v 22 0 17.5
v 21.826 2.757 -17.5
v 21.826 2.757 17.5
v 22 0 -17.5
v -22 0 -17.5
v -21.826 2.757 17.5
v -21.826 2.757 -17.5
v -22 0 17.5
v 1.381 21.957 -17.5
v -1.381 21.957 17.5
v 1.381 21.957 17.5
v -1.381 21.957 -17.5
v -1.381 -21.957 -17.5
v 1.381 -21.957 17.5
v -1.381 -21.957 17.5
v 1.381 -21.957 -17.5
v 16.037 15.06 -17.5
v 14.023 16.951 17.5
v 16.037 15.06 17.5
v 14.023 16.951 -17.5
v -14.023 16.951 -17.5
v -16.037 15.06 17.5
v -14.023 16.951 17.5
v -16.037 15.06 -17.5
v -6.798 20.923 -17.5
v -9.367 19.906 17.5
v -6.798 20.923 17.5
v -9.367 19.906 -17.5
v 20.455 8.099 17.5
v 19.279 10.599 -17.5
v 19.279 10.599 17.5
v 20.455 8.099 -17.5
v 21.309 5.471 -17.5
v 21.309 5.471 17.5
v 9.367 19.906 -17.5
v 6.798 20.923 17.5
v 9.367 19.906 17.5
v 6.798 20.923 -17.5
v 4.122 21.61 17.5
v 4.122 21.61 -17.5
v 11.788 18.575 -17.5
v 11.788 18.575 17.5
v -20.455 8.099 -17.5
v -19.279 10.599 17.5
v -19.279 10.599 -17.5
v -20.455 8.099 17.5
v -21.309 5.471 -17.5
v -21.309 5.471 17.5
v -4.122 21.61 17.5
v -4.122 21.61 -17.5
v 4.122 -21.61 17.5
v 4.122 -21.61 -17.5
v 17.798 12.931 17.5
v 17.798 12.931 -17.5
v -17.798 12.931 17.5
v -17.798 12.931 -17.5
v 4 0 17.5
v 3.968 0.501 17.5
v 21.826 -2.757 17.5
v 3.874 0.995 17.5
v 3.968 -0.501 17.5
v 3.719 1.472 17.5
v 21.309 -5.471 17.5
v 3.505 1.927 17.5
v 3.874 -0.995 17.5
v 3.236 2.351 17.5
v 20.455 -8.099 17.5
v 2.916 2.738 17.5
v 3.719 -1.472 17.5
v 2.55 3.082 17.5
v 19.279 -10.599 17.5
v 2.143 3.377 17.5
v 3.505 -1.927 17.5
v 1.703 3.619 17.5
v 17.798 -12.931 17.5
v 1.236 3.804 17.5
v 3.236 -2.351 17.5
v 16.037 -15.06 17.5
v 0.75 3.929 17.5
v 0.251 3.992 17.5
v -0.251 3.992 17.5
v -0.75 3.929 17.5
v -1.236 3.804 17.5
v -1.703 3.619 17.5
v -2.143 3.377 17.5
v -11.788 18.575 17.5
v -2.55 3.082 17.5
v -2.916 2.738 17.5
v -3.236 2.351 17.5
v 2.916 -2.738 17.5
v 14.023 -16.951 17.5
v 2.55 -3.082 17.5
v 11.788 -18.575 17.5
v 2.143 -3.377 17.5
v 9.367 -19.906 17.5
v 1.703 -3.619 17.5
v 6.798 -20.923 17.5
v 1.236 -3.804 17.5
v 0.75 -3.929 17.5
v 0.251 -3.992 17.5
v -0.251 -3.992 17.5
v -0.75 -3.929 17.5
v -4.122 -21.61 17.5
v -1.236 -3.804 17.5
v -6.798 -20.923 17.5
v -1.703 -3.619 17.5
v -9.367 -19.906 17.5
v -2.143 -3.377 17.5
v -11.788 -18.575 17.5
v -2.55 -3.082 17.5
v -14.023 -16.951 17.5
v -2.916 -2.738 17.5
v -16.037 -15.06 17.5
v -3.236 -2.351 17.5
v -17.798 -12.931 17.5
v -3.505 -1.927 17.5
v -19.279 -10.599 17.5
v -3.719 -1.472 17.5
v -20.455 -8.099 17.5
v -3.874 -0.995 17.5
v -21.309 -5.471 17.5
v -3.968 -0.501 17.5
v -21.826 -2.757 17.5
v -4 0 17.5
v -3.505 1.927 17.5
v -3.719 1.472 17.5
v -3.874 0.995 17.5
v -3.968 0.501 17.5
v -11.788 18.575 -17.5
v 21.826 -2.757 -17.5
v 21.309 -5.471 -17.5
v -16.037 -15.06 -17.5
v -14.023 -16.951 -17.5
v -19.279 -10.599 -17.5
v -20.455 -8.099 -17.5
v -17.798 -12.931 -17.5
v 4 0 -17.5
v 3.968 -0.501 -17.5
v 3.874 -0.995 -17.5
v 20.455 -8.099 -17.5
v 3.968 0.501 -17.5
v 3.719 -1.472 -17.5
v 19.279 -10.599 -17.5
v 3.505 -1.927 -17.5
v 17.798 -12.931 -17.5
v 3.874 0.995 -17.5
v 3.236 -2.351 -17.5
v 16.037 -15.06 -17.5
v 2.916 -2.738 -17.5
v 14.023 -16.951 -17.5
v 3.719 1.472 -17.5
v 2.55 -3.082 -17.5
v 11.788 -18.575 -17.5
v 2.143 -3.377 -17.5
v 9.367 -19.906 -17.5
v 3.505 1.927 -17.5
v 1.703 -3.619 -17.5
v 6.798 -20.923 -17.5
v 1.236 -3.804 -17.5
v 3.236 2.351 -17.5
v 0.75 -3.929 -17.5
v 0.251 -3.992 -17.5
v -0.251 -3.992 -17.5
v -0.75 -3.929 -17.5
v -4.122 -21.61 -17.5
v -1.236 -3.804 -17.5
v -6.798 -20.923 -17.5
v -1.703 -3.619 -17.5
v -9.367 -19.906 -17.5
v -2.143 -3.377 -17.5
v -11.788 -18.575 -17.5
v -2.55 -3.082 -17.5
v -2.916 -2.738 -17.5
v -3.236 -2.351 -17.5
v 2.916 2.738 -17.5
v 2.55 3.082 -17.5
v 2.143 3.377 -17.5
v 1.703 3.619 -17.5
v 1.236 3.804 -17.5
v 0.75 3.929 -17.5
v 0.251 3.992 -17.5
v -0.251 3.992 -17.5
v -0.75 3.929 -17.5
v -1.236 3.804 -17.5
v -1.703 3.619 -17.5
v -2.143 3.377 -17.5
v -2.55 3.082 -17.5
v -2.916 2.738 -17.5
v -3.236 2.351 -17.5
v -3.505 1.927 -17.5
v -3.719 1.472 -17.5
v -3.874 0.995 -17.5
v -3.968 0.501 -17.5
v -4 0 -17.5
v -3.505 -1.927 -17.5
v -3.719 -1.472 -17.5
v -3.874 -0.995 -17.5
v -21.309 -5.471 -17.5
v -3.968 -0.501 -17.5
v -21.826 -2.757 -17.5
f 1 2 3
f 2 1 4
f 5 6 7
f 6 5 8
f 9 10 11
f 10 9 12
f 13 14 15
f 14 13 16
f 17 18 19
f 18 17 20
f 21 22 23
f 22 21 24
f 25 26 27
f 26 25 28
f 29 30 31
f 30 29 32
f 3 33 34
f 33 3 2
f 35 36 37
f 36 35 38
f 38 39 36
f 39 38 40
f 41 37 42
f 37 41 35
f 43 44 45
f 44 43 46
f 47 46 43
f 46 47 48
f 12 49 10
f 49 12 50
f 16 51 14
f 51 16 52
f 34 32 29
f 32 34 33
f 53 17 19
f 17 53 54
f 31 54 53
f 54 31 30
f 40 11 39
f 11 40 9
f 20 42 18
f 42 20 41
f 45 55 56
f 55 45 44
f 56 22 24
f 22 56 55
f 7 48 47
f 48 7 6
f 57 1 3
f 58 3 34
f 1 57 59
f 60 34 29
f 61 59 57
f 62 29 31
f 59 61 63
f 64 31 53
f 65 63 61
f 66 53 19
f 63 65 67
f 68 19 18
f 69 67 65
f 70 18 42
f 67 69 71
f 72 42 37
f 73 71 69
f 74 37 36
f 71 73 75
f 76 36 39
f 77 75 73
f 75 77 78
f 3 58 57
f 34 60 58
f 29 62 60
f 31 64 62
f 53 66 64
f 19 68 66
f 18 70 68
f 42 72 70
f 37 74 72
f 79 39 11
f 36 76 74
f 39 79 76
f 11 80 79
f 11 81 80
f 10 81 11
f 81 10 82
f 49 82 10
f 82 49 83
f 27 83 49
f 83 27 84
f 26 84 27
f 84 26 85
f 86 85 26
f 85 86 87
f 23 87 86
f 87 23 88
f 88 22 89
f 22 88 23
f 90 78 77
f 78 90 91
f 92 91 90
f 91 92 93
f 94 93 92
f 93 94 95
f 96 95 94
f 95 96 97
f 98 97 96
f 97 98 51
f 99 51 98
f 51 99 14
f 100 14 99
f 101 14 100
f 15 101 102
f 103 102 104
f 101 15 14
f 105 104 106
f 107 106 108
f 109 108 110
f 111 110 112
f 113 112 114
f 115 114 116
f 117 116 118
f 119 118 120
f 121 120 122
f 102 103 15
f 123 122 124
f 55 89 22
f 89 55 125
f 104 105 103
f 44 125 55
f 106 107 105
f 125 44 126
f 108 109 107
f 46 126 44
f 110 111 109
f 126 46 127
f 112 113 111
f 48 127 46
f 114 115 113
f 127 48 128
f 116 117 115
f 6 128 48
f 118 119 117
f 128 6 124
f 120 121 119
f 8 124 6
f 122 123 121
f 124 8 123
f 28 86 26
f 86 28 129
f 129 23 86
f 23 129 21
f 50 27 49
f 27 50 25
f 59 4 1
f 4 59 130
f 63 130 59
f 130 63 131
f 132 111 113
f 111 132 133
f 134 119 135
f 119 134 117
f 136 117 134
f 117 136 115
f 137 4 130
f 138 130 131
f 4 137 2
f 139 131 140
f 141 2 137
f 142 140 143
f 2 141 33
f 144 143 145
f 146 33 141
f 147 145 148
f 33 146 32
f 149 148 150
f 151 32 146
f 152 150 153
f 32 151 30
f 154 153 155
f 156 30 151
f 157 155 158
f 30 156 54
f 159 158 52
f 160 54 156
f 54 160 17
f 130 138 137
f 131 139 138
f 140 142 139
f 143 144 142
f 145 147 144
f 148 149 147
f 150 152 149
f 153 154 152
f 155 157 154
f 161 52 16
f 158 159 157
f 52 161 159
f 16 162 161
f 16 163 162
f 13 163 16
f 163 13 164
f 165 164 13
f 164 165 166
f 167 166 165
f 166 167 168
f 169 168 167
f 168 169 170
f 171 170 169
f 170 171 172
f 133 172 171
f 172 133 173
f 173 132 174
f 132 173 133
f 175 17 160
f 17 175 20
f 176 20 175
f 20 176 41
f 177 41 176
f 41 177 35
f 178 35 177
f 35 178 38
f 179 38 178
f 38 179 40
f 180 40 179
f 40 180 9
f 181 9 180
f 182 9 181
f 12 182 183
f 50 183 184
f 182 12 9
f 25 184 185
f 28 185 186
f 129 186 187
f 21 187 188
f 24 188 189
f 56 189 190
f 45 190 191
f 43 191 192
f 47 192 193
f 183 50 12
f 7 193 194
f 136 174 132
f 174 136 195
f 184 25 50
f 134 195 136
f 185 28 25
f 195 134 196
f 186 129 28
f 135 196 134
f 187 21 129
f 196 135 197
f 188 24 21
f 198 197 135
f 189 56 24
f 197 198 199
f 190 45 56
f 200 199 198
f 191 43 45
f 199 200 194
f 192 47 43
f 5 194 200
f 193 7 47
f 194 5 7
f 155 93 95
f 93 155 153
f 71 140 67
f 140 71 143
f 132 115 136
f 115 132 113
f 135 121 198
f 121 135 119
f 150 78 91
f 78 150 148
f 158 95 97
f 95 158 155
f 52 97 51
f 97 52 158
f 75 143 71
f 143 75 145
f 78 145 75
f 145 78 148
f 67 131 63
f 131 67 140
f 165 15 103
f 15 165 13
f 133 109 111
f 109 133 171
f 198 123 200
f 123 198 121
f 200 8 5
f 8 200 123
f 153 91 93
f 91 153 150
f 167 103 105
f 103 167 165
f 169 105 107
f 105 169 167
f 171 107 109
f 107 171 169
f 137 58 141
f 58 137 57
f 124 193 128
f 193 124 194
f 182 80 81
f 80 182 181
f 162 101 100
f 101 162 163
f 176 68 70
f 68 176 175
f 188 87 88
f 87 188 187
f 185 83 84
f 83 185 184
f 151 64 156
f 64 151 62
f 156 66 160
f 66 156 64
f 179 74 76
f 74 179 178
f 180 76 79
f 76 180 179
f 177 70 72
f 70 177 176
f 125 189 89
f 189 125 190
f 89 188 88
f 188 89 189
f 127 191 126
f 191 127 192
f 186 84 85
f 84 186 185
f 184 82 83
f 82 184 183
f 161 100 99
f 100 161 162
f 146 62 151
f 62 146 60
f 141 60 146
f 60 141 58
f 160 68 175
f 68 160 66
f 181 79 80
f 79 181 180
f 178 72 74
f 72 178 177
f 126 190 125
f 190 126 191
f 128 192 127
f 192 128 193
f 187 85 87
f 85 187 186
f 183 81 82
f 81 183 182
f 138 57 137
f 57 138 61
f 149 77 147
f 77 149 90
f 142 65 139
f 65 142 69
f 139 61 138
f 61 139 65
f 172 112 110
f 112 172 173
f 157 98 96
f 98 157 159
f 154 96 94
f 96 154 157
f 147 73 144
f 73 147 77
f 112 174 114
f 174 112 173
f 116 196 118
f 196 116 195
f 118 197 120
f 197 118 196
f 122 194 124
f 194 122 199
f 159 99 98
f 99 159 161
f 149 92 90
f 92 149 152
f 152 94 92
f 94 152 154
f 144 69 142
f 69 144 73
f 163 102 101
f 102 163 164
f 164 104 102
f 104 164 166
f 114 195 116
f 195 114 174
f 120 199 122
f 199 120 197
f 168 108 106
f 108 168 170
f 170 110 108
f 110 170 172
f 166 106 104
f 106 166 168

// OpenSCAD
$fn = 50;


difference() {
	union() {
		translate(v = [0, 0, -17.5000000000]) {
			cylinder(h = 35, r = 22.0000000000);
		}
	}
	union() {
		translate(v = [0, 0, -100.0000000000]) {
			cylinder(h = 200, r = 4);
		}
	}
}
